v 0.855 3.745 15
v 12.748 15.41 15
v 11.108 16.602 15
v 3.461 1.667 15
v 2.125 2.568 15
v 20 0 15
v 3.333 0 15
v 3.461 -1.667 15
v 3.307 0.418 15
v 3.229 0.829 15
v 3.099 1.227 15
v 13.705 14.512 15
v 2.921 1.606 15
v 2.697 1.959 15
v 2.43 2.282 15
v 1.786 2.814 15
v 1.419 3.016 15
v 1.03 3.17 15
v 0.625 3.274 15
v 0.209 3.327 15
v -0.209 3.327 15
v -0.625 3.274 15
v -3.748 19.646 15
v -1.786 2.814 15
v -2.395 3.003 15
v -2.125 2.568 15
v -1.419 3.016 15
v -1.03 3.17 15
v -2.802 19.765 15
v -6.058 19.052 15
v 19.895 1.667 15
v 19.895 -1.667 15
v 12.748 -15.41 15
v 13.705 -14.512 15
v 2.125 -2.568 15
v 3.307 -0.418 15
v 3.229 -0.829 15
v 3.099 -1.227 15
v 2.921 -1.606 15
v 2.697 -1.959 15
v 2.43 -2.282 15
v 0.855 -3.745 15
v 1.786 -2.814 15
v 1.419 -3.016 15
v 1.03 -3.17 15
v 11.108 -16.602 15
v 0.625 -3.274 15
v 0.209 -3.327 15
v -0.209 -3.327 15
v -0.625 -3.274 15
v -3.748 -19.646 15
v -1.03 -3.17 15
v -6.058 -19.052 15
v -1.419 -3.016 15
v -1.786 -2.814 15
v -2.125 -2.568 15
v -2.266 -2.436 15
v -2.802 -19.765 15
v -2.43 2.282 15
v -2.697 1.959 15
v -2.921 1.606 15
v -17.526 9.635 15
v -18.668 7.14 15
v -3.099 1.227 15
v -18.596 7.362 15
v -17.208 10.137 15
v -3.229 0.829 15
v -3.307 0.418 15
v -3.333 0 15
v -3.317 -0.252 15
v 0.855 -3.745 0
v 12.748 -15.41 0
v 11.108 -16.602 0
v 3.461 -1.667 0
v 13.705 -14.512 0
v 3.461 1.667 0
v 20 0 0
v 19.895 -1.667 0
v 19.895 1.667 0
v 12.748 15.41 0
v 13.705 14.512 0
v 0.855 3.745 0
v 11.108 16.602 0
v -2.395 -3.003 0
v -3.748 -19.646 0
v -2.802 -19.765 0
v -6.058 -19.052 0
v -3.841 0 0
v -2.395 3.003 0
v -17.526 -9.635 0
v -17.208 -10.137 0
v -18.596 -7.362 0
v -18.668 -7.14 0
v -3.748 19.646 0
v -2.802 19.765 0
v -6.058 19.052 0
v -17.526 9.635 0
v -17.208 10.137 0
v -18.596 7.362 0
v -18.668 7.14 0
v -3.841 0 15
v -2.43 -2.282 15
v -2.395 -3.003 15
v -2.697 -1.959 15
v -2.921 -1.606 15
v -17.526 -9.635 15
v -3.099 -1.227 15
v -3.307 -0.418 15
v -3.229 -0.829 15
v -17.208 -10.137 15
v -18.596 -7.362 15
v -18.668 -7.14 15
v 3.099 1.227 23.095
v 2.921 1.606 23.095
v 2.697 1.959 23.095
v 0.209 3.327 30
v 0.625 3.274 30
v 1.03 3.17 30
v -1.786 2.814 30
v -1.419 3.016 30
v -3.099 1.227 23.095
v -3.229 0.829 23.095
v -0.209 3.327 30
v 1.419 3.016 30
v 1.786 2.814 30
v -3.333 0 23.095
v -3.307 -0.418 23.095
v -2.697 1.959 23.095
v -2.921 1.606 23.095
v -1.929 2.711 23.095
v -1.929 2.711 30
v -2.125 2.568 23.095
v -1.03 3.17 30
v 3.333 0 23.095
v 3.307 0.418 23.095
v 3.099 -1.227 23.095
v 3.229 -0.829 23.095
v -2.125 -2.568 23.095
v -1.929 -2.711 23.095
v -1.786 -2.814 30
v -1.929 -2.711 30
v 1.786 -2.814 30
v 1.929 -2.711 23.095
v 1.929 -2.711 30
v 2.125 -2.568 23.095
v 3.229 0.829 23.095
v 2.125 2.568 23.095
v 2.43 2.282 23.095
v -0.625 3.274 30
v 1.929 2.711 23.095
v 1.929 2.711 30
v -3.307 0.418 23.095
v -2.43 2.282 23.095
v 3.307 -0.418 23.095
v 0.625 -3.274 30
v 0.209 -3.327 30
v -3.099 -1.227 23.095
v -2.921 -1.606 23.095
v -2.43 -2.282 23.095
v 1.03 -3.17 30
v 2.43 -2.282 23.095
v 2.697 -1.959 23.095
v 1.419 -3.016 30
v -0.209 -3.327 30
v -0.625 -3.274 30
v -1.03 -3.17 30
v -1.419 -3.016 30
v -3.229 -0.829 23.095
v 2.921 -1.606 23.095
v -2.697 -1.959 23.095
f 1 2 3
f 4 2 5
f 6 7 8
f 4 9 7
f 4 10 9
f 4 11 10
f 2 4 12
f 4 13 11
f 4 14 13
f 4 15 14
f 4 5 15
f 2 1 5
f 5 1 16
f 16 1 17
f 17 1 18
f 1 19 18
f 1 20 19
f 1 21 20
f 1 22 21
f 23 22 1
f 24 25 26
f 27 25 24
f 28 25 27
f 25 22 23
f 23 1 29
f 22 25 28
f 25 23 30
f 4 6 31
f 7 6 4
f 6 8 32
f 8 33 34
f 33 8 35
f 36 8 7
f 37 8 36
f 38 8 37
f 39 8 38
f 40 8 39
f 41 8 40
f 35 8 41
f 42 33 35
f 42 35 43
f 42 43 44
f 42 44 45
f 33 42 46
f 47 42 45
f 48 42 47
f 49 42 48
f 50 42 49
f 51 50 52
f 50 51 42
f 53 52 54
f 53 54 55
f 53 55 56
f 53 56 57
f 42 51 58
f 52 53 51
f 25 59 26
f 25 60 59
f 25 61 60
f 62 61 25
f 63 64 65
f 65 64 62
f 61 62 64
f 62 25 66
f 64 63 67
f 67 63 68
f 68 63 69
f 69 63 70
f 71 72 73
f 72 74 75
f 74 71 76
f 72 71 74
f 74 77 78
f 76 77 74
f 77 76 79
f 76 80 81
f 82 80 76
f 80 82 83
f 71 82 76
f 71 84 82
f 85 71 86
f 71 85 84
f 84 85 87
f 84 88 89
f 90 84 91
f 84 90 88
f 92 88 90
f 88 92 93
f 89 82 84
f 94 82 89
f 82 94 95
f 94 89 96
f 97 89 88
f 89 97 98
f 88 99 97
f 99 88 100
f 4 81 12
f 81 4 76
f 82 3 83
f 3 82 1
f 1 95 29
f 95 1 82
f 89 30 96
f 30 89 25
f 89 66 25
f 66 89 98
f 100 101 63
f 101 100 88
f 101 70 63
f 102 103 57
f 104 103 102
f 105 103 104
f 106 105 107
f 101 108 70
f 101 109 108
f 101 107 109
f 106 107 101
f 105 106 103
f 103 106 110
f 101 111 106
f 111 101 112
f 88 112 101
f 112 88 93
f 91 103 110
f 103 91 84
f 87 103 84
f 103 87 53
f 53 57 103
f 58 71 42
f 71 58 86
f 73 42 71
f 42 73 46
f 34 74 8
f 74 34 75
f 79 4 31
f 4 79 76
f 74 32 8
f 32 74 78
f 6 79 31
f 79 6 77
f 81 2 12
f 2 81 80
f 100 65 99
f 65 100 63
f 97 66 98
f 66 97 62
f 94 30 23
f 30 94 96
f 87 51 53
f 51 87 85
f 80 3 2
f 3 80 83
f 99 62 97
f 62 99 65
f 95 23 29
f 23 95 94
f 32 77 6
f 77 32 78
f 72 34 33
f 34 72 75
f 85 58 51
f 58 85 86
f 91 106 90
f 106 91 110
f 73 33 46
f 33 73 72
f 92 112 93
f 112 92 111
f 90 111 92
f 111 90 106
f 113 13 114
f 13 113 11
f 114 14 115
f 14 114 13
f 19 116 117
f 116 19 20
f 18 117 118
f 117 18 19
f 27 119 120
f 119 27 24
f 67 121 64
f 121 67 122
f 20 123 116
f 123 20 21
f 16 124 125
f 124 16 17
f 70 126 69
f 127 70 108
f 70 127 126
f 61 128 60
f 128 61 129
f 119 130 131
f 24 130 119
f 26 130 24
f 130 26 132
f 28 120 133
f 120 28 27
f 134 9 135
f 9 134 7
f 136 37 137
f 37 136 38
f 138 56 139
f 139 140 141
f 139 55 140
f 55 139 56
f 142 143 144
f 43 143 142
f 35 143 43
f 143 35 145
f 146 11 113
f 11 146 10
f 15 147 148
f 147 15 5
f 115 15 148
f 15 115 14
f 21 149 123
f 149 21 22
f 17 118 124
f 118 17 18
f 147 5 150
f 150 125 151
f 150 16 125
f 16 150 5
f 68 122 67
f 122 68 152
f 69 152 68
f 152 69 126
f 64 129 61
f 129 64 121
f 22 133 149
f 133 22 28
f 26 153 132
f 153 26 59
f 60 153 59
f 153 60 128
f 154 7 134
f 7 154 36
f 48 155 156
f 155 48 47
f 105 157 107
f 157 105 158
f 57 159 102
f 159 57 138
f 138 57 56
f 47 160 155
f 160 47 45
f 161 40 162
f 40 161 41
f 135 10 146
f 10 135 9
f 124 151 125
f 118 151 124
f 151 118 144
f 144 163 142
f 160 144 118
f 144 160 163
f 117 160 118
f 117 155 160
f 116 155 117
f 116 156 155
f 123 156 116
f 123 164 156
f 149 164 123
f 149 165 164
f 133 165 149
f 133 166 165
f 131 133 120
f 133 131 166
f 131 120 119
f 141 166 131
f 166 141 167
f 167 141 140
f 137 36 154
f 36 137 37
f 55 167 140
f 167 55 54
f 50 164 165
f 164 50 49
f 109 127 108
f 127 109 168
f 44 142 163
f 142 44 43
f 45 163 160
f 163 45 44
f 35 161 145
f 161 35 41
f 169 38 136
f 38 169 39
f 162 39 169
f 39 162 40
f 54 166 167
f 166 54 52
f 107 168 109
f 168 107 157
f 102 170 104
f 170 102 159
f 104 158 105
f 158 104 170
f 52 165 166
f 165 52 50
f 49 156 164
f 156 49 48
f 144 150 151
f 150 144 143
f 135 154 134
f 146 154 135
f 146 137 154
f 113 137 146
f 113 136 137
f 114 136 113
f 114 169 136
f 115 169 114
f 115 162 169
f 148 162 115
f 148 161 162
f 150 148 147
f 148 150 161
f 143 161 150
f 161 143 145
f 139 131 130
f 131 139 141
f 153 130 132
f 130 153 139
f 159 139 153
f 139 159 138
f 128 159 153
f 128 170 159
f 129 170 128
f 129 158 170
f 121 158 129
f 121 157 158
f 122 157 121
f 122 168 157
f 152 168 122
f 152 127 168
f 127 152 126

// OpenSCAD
//include <housing.scad>;

module turbine(width, height, blades)
{
    blade_width = width * 0.4;
    
    difference()
    {
        for (i = [1:blades])
        {
            rotate((i*360) / blades)
            {
                    translate([0, -blade_width / 12, 0])
                    {
                        cube([blade_width, blade_width / 6, height]);
                    }
            }
        } 

        difference()
        {
            cylinder(h = height, r = width * 0.435);
            cylinder(h = height + 0.02, r = width * 0.4);
        }
        
    }

    difference()
    {
        cylinder(h = height * 2, r = width / 15);

        translate([width * 0.11, 0, height * 2 - width / 15])
        {
            cube(width / 7, center = true);
        }
        
        translate([-width * 0.11, 0, height * 2 - width / 15])
        {
            cube(width / 7, center = true);
        }
    }
}



turbine(50, 15, 7);
    
$fn = 50;
